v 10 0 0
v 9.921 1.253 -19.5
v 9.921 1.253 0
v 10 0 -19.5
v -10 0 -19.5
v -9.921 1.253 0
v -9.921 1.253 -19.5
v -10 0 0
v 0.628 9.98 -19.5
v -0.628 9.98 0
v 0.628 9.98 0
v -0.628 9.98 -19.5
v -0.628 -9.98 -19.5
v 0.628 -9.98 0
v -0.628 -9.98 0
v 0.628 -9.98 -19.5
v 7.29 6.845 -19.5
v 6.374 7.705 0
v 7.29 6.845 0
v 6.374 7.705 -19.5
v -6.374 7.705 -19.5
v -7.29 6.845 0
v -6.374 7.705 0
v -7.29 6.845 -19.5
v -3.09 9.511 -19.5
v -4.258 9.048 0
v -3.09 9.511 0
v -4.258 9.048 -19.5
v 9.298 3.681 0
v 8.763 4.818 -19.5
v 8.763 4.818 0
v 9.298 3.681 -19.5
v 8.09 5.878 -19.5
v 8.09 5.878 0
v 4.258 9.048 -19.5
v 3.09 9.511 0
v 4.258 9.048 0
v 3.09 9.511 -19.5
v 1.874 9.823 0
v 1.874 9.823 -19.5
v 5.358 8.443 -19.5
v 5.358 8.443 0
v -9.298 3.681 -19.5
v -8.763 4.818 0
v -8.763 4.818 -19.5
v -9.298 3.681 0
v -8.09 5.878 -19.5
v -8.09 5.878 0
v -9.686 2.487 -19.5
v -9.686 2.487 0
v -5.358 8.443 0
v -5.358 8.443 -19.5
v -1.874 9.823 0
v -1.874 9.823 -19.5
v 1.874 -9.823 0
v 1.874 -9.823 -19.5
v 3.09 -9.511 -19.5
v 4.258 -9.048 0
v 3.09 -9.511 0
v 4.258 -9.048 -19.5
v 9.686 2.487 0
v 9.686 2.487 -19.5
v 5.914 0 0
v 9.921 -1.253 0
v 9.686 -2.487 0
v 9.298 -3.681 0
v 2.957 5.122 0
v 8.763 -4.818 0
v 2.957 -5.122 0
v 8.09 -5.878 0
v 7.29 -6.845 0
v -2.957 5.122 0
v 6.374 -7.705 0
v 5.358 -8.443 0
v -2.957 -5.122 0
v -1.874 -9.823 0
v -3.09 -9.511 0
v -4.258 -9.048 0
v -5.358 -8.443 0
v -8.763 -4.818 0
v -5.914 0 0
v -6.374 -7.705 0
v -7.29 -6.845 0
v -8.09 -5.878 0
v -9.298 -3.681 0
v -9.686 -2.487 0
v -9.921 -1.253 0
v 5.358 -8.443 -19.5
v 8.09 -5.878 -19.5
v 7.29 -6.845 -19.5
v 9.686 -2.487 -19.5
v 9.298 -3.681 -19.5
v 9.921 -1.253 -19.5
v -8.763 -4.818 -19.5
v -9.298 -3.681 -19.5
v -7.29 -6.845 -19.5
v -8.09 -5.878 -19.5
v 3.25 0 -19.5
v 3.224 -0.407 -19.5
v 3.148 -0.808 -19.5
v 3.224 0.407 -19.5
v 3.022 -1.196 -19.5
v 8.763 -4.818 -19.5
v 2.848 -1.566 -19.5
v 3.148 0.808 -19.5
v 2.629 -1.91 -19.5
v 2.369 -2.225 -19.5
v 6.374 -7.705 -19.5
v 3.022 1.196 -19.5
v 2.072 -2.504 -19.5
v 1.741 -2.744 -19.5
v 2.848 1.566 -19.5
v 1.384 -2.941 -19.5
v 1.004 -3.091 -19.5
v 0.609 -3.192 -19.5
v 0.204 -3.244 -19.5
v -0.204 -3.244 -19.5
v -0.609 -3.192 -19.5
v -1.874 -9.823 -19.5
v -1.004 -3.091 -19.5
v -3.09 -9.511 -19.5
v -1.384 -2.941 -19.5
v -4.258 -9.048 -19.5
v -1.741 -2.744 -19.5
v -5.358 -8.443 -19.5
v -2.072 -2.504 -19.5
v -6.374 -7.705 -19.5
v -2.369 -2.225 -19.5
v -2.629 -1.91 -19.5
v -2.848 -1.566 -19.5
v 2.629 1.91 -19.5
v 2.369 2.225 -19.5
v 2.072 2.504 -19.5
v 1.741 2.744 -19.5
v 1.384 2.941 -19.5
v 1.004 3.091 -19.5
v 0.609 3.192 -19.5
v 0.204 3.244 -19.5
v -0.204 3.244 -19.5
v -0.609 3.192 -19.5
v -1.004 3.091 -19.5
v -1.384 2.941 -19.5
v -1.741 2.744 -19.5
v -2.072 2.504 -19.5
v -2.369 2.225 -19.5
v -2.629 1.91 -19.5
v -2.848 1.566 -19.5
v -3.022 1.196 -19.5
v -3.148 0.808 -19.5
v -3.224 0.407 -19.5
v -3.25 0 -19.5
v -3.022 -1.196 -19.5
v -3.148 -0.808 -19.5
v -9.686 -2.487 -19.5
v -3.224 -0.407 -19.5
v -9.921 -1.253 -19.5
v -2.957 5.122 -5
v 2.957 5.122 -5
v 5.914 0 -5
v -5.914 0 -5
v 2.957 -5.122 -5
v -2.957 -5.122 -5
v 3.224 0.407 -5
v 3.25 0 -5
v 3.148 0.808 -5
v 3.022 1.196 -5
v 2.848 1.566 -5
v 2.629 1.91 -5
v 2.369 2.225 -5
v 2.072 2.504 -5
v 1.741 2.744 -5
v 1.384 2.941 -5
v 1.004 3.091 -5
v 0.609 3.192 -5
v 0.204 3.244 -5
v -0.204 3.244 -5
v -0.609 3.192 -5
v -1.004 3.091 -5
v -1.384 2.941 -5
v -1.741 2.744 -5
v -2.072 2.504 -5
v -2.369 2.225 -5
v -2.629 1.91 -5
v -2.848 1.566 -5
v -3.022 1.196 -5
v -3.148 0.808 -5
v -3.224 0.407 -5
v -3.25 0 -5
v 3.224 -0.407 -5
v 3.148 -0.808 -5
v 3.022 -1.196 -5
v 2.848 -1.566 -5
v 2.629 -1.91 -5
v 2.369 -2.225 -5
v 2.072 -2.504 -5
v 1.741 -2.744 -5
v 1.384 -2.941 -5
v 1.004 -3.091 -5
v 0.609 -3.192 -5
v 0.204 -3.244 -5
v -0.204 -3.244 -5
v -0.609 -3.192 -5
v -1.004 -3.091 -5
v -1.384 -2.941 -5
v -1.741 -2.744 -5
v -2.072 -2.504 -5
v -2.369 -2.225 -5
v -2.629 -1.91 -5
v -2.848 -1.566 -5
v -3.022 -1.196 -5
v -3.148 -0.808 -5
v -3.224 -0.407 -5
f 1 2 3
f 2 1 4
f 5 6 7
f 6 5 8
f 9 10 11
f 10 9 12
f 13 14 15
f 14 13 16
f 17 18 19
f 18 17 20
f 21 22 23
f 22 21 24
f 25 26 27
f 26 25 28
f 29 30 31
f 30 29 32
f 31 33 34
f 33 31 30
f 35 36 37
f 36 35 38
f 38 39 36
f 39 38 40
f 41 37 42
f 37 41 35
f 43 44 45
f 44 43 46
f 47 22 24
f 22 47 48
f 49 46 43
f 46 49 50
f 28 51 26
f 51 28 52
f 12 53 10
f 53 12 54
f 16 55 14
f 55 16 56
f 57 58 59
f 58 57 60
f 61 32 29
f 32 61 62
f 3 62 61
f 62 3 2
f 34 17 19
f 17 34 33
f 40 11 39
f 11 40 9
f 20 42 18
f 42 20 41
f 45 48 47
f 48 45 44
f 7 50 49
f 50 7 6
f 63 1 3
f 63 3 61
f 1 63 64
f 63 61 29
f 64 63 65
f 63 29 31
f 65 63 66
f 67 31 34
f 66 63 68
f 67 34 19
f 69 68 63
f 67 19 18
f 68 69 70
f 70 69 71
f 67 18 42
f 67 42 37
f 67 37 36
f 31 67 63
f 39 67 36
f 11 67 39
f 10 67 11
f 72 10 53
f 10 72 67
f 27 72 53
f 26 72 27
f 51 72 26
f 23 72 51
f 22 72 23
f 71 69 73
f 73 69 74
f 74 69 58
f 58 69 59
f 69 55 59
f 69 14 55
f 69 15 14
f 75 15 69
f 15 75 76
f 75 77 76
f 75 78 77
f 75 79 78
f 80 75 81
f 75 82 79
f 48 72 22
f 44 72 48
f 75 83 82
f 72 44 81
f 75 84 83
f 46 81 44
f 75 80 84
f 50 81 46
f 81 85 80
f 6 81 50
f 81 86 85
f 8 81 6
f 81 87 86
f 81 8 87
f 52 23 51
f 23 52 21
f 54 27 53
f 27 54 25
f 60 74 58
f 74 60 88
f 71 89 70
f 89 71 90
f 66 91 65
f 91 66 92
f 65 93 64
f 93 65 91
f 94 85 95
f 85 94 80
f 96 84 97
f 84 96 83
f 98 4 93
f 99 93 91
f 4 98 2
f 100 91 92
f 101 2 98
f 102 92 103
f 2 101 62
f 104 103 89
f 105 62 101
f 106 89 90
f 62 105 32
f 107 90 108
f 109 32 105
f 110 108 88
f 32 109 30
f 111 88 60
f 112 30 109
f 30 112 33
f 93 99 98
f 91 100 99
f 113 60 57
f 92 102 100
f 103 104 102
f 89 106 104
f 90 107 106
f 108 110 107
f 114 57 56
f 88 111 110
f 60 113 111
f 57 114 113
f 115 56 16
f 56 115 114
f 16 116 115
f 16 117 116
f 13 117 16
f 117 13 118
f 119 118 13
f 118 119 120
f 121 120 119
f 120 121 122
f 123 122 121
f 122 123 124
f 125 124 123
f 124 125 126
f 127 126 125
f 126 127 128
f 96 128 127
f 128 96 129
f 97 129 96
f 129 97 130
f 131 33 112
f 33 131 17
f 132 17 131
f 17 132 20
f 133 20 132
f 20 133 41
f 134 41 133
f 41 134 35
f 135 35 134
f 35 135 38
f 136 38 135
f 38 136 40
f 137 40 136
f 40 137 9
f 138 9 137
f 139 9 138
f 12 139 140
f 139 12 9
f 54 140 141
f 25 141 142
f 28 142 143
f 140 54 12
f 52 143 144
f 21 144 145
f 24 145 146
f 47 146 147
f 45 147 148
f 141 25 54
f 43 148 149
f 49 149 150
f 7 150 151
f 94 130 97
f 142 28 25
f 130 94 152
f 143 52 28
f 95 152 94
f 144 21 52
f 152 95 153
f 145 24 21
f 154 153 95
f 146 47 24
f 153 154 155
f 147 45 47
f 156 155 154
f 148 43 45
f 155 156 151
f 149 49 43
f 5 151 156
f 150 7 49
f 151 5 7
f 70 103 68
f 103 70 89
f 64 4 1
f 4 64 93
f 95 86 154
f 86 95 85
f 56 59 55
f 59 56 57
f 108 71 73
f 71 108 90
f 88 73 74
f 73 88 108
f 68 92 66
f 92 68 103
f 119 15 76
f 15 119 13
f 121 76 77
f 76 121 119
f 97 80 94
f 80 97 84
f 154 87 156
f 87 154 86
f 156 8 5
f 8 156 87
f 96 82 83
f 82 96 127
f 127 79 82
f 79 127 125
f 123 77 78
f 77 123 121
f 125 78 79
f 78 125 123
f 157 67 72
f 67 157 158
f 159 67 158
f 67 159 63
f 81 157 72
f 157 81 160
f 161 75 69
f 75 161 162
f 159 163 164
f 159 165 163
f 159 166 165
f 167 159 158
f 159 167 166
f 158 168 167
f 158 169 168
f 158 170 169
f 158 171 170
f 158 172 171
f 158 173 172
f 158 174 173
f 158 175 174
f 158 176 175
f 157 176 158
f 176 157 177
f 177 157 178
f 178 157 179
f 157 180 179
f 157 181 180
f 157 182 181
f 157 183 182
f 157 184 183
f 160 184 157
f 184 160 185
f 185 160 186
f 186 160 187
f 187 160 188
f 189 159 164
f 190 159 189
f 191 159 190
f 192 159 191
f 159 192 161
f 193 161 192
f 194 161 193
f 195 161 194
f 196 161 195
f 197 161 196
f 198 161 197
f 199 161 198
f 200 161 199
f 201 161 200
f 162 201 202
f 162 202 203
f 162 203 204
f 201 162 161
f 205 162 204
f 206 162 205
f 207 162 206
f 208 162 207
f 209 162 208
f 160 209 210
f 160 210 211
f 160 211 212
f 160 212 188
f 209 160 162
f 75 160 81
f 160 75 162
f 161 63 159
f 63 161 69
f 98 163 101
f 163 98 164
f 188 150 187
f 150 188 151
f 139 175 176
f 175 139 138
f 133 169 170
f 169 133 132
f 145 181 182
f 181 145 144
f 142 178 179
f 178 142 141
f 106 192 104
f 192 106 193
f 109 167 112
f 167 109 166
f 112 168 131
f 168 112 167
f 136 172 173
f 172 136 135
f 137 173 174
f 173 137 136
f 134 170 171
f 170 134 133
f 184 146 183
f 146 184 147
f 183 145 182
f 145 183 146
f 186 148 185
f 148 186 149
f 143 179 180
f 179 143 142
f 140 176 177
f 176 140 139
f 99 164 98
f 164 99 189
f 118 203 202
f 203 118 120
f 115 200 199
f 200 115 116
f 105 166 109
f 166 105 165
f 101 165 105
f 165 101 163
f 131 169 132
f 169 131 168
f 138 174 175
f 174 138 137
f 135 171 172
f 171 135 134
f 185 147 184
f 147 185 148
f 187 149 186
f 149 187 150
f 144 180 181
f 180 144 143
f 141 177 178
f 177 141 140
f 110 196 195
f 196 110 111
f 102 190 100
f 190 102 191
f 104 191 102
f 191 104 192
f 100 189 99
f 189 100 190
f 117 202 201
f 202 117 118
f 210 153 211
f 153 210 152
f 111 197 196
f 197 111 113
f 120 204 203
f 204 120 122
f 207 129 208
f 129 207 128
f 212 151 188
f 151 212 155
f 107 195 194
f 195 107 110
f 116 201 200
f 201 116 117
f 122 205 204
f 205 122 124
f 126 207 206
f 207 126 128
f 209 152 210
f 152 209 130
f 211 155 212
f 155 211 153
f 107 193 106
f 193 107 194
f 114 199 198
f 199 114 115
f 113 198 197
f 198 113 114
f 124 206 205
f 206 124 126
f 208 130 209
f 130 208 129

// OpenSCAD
$fn = 50;

difference() {
	union() {
		translate(v = [0, 0, -19.5]) {
			cylinder(h = 19.5, r = 10.0);
		}
		#translate(v = [0, 0, -21.0]) {
			cylinder(h = 21, r = 2.875);
		}
	}
	union() {
		translate(v = [0, 0, 0]) {
			rotate(a = [0, 0, 0]) {
				difference() {
					union() {
						translate(v = [0, 0, -5]) {
							linear_extrude(height = 5) {
								polygon(points = [[5.914249999999999, 0.0], [2.957125, 5.1218907443321156], [-2.9571249999999982, 5.1218907443321156], [-5.914249999999999, 7.242867331857232e-16], [-2.9571250000000022, -5.121890744332115], [2.9571249999999956, -5.121890744332118]]);
							}
						}
					}
					union();
				}
			}
		}
		#translate(v = [0, 0, -100.0]) {
			cylinder(h = 200, r = 3.25);
		}
	}
}
